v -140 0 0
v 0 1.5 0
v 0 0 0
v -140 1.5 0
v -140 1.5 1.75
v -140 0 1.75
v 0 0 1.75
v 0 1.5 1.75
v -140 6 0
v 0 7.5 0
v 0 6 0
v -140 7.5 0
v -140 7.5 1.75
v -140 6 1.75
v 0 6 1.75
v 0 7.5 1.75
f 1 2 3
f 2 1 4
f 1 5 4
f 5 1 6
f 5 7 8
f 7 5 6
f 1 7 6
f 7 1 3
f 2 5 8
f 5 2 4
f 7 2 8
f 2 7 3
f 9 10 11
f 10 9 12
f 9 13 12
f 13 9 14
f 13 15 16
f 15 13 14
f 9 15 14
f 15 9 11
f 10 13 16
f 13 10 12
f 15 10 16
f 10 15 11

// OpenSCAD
CakeHeight = 170;

BoundaryWidth = 1.5;
BoundaryHeight = 1.75;

Arc1ToEdge = 15;

rotate([0, -90, 0])
cube(size=[BoundaryHeight, BoundaryWidth, CakeHeight-Arc1ToEdge*2], center=false);

translate([0, 6, 0])
rotate([0, -90, 0])
cube(size=[BoundaryHeight, BoundaryWidth, CakeHeight-Arc1ToEdge*2], center=false);
